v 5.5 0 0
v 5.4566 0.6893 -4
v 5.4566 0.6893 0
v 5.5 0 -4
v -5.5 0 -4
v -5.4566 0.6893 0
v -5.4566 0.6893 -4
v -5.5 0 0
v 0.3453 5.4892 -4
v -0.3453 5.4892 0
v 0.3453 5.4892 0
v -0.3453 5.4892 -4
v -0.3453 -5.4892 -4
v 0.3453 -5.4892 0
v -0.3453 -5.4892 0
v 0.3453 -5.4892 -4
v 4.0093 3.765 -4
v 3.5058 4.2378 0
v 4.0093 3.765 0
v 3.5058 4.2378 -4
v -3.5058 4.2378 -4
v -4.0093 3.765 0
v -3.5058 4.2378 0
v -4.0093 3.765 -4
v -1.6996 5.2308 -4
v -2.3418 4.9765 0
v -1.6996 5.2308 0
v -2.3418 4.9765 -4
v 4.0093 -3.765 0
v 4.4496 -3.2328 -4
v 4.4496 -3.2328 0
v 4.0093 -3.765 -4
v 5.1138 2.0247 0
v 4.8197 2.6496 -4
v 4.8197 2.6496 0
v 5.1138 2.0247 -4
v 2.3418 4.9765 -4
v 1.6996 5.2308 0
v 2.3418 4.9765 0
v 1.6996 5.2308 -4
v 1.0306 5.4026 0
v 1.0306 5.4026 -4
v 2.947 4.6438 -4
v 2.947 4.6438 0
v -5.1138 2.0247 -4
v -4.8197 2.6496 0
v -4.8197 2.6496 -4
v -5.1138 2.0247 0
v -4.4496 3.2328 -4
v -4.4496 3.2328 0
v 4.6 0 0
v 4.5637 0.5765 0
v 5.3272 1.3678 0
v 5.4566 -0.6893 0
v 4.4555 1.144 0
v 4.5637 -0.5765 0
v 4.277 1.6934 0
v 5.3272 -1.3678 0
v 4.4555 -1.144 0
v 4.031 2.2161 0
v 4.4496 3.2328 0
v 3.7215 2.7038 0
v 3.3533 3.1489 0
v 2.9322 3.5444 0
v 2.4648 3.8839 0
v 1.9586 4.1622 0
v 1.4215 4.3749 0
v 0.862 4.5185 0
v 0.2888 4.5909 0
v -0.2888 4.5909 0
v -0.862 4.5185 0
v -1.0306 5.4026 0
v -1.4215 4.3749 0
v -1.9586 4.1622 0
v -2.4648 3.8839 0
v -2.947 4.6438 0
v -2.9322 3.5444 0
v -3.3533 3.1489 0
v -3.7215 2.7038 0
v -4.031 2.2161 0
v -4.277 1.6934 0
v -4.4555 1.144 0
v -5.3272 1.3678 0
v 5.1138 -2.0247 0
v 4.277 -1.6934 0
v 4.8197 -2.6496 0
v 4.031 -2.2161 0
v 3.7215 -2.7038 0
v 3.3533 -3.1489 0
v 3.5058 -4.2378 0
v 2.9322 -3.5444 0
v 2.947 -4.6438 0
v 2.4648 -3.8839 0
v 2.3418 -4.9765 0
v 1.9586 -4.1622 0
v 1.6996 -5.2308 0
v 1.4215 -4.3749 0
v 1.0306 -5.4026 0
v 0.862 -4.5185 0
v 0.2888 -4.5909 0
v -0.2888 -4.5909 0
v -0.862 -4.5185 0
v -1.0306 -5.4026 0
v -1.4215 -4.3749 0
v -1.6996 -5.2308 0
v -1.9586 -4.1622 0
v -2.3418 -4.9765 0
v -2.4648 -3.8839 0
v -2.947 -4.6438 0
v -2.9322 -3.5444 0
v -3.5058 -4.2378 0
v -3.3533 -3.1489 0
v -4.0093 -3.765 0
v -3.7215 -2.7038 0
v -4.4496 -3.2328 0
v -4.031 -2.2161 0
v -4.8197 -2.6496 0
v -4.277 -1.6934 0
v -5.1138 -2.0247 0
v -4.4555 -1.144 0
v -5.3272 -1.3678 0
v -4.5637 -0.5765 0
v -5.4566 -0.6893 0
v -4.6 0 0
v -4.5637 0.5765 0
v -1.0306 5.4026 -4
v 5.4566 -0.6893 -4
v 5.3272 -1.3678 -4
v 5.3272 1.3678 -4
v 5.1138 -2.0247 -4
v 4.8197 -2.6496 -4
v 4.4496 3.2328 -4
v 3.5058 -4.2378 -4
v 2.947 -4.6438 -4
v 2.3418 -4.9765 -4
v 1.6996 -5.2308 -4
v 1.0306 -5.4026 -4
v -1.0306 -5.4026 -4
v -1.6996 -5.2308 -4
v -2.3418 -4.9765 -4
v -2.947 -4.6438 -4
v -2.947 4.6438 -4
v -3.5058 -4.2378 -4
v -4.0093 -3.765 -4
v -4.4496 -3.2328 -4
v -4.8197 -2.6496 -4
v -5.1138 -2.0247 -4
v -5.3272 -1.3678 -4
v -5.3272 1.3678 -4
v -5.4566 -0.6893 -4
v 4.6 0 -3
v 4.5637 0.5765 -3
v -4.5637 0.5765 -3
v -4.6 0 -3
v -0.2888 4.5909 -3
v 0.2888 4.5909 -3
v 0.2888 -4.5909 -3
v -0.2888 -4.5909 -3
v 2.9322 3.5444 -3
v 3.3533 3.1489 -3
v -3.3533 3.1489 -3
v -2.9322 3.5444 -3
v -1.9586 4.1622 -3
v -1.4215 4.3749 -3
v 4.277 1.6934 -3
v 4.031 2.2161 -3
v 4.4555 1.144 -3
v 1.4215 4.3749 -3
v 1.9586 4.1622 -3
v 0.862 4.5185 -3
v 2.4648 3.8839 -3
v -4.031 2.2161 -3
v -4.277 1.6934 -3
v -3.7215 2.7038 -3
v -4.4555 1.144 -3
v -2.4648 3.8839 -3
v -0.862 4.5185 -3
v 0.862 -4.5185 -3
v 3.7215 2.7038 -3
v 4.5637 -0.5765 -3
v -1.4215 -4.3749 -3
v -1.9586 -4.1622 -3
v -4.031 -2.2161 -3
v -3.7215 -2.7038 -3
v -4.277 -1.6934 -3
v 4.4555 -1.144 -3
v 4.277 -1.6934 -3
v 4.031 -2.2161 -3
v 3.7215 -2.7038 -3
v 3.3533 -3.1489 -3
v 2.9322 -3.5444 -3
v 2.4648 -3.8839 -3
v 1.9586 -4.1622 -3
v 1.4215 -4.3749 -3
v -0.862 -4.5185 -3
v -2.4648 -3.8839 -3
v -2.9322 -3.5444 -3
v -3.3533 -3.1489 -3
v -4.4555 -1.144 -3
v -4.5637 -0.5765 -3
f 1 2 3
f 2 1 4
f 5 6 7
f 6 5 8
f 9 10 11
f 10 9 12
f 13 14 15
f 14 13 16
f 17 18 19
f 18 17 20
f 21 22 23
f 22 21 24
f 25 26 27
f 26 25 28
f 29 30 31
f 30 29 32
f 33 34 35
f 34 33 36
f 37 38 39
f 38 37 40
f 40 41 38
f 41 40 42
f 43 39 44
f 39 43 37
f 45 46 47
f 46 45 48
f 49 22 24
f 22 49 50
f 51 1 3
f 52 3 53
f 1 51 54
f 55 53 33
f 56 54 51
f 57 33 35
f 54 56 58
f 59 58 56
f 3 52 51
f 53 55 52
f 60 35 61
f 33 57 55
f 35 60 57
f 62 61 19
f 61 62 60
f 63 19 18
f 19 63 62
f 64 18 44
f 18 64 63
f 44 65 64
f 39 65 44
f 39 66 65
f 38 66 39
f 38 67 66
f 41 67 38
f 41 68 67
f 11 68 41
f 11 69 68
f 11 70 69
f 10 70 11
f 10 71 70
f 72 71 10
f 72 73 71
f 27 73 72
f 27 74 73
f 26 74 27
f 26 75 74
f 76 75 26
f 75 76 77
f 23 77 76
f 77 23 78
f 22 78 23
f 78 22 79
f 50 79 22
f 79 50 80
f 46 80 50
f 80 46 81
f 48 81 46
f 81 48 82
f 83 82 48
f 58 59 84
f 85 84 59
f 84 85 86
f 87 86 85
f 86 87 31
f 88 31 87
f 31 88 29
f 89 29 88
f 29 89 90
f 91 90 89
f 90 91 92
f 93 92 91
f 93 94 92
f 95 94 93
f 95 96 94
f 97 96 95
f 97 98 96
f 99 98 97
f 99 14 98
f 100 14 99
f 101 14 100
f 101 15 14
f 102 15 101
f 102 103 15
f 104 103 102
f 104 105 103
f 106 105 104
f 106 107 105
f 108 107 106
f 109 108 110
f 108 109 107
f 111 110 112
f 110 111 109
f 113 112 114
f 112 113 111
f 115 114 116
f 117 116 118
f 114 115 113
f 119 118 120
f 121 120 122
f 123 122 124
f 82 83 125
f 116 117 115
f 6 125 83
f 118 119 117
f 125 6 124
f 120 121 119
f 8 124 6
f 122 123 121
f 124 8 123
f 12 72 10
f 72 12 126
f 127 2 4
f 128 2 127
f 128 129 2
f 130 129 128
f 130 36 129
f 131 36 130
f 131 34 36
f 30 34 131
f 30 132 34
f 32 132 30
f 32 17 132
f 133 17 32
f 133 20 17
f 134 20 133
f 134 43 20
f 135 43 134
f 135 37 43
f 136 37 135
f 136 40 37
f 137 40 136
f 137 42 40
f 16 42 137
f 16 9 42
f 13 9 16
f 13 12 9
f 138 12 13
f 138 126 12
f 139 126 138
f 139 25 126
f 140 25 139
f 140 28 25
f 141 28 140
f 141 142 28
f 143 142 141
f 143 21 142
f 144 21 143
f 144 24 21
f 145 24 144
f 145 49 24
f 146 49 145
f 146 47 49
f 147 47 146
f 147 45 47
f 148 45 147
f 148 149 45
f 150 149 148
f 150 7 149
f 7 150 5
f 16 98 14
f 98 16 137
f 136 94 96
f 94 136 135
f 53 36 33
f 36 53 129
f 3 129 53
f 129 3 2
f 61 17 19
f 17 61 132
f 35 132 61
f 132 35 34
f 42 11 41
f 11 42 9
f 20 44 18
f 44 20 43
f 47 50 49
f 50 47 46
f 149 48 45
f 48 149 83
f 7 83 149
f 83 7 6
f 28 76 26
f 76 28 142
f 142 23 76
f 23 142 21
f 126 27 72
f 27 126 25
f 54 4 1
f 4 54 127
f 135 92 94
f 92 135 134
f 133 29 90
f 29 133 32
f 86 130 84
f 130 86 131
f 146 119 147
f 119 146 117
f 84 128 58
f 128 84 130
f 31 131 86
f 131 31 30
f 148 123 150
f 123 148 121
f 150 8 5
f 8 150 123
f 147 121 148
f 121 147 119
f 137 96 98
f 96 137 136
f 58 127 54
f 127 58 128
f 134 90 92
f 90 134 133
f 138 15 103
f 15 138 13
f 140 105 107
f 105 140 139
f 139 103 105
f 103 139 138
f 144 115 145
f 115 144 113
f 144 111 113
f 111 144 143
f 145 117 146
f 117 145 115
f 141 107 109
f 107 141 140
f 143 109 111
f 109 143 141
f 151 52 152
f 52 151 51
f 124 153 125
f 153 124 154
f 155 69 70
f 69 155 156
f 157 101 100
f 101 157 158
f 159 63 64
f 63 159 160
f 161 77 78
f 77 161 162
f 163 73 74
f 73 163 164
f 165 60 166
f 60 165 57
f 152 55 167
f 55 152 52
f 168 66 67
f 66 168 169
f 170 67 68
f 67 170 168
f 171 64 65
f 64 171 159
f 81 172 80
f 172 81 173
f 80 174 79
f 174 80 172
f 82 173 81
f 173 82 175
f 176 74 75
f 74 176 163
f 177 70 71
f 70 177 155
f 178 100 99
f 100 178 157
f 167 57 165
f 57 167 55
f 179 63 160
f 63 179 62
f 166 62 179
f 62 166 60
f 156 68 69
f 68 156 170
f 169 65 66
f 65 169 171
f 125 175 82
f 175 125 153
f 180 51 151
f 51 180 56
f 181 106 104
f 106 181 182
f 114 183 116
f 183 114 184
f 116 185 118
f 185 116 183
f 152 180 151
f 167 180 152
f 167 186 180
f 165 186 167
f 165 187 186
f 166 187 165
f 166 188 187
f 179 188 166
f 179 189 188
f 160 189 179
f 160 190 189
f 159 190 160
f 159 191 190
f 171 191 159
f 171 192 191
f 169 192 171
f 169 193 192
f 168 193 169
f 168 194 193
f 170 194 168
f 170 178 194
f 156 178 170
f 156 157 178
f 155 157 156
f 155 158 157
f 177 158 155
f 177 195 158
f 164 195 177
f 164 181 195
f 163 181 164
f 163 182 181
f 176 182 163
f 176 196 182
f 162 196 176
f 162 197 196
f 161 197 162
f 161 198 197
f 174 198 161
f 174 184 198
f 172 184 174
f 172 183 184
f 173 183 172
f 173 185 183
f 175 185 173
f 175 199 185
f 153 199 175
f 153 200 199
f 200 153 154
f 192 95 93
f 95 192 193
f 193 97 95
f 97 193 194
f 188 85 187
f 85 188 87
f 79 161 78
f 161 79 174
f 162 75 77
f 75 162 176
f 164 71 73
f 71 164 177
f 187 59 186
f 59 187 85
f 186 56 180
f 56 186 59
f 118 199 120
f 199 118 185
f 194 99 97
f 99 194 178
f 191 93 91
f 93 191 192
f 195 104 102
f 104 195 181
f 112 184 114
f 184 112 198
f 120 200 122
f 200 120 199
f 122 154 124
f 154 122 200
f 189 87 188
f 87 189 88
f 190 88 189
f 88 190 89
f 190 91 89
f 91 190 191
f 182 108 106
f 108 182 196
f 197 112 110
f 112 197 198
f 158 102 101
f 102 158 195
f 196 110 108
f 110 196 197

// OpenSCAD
$fn = 50;


difference() {
	union() {
		translate(v = [0, 0, -4.0000000000]) {
			cylinder(h = 4, r = 5.5000000000);
		}
	}
	union() {
		#translate(v = [0, 0, -3.0000000000]) {
			cylinder(h = 3, r = 4.6000000000);
		}
	}
}
